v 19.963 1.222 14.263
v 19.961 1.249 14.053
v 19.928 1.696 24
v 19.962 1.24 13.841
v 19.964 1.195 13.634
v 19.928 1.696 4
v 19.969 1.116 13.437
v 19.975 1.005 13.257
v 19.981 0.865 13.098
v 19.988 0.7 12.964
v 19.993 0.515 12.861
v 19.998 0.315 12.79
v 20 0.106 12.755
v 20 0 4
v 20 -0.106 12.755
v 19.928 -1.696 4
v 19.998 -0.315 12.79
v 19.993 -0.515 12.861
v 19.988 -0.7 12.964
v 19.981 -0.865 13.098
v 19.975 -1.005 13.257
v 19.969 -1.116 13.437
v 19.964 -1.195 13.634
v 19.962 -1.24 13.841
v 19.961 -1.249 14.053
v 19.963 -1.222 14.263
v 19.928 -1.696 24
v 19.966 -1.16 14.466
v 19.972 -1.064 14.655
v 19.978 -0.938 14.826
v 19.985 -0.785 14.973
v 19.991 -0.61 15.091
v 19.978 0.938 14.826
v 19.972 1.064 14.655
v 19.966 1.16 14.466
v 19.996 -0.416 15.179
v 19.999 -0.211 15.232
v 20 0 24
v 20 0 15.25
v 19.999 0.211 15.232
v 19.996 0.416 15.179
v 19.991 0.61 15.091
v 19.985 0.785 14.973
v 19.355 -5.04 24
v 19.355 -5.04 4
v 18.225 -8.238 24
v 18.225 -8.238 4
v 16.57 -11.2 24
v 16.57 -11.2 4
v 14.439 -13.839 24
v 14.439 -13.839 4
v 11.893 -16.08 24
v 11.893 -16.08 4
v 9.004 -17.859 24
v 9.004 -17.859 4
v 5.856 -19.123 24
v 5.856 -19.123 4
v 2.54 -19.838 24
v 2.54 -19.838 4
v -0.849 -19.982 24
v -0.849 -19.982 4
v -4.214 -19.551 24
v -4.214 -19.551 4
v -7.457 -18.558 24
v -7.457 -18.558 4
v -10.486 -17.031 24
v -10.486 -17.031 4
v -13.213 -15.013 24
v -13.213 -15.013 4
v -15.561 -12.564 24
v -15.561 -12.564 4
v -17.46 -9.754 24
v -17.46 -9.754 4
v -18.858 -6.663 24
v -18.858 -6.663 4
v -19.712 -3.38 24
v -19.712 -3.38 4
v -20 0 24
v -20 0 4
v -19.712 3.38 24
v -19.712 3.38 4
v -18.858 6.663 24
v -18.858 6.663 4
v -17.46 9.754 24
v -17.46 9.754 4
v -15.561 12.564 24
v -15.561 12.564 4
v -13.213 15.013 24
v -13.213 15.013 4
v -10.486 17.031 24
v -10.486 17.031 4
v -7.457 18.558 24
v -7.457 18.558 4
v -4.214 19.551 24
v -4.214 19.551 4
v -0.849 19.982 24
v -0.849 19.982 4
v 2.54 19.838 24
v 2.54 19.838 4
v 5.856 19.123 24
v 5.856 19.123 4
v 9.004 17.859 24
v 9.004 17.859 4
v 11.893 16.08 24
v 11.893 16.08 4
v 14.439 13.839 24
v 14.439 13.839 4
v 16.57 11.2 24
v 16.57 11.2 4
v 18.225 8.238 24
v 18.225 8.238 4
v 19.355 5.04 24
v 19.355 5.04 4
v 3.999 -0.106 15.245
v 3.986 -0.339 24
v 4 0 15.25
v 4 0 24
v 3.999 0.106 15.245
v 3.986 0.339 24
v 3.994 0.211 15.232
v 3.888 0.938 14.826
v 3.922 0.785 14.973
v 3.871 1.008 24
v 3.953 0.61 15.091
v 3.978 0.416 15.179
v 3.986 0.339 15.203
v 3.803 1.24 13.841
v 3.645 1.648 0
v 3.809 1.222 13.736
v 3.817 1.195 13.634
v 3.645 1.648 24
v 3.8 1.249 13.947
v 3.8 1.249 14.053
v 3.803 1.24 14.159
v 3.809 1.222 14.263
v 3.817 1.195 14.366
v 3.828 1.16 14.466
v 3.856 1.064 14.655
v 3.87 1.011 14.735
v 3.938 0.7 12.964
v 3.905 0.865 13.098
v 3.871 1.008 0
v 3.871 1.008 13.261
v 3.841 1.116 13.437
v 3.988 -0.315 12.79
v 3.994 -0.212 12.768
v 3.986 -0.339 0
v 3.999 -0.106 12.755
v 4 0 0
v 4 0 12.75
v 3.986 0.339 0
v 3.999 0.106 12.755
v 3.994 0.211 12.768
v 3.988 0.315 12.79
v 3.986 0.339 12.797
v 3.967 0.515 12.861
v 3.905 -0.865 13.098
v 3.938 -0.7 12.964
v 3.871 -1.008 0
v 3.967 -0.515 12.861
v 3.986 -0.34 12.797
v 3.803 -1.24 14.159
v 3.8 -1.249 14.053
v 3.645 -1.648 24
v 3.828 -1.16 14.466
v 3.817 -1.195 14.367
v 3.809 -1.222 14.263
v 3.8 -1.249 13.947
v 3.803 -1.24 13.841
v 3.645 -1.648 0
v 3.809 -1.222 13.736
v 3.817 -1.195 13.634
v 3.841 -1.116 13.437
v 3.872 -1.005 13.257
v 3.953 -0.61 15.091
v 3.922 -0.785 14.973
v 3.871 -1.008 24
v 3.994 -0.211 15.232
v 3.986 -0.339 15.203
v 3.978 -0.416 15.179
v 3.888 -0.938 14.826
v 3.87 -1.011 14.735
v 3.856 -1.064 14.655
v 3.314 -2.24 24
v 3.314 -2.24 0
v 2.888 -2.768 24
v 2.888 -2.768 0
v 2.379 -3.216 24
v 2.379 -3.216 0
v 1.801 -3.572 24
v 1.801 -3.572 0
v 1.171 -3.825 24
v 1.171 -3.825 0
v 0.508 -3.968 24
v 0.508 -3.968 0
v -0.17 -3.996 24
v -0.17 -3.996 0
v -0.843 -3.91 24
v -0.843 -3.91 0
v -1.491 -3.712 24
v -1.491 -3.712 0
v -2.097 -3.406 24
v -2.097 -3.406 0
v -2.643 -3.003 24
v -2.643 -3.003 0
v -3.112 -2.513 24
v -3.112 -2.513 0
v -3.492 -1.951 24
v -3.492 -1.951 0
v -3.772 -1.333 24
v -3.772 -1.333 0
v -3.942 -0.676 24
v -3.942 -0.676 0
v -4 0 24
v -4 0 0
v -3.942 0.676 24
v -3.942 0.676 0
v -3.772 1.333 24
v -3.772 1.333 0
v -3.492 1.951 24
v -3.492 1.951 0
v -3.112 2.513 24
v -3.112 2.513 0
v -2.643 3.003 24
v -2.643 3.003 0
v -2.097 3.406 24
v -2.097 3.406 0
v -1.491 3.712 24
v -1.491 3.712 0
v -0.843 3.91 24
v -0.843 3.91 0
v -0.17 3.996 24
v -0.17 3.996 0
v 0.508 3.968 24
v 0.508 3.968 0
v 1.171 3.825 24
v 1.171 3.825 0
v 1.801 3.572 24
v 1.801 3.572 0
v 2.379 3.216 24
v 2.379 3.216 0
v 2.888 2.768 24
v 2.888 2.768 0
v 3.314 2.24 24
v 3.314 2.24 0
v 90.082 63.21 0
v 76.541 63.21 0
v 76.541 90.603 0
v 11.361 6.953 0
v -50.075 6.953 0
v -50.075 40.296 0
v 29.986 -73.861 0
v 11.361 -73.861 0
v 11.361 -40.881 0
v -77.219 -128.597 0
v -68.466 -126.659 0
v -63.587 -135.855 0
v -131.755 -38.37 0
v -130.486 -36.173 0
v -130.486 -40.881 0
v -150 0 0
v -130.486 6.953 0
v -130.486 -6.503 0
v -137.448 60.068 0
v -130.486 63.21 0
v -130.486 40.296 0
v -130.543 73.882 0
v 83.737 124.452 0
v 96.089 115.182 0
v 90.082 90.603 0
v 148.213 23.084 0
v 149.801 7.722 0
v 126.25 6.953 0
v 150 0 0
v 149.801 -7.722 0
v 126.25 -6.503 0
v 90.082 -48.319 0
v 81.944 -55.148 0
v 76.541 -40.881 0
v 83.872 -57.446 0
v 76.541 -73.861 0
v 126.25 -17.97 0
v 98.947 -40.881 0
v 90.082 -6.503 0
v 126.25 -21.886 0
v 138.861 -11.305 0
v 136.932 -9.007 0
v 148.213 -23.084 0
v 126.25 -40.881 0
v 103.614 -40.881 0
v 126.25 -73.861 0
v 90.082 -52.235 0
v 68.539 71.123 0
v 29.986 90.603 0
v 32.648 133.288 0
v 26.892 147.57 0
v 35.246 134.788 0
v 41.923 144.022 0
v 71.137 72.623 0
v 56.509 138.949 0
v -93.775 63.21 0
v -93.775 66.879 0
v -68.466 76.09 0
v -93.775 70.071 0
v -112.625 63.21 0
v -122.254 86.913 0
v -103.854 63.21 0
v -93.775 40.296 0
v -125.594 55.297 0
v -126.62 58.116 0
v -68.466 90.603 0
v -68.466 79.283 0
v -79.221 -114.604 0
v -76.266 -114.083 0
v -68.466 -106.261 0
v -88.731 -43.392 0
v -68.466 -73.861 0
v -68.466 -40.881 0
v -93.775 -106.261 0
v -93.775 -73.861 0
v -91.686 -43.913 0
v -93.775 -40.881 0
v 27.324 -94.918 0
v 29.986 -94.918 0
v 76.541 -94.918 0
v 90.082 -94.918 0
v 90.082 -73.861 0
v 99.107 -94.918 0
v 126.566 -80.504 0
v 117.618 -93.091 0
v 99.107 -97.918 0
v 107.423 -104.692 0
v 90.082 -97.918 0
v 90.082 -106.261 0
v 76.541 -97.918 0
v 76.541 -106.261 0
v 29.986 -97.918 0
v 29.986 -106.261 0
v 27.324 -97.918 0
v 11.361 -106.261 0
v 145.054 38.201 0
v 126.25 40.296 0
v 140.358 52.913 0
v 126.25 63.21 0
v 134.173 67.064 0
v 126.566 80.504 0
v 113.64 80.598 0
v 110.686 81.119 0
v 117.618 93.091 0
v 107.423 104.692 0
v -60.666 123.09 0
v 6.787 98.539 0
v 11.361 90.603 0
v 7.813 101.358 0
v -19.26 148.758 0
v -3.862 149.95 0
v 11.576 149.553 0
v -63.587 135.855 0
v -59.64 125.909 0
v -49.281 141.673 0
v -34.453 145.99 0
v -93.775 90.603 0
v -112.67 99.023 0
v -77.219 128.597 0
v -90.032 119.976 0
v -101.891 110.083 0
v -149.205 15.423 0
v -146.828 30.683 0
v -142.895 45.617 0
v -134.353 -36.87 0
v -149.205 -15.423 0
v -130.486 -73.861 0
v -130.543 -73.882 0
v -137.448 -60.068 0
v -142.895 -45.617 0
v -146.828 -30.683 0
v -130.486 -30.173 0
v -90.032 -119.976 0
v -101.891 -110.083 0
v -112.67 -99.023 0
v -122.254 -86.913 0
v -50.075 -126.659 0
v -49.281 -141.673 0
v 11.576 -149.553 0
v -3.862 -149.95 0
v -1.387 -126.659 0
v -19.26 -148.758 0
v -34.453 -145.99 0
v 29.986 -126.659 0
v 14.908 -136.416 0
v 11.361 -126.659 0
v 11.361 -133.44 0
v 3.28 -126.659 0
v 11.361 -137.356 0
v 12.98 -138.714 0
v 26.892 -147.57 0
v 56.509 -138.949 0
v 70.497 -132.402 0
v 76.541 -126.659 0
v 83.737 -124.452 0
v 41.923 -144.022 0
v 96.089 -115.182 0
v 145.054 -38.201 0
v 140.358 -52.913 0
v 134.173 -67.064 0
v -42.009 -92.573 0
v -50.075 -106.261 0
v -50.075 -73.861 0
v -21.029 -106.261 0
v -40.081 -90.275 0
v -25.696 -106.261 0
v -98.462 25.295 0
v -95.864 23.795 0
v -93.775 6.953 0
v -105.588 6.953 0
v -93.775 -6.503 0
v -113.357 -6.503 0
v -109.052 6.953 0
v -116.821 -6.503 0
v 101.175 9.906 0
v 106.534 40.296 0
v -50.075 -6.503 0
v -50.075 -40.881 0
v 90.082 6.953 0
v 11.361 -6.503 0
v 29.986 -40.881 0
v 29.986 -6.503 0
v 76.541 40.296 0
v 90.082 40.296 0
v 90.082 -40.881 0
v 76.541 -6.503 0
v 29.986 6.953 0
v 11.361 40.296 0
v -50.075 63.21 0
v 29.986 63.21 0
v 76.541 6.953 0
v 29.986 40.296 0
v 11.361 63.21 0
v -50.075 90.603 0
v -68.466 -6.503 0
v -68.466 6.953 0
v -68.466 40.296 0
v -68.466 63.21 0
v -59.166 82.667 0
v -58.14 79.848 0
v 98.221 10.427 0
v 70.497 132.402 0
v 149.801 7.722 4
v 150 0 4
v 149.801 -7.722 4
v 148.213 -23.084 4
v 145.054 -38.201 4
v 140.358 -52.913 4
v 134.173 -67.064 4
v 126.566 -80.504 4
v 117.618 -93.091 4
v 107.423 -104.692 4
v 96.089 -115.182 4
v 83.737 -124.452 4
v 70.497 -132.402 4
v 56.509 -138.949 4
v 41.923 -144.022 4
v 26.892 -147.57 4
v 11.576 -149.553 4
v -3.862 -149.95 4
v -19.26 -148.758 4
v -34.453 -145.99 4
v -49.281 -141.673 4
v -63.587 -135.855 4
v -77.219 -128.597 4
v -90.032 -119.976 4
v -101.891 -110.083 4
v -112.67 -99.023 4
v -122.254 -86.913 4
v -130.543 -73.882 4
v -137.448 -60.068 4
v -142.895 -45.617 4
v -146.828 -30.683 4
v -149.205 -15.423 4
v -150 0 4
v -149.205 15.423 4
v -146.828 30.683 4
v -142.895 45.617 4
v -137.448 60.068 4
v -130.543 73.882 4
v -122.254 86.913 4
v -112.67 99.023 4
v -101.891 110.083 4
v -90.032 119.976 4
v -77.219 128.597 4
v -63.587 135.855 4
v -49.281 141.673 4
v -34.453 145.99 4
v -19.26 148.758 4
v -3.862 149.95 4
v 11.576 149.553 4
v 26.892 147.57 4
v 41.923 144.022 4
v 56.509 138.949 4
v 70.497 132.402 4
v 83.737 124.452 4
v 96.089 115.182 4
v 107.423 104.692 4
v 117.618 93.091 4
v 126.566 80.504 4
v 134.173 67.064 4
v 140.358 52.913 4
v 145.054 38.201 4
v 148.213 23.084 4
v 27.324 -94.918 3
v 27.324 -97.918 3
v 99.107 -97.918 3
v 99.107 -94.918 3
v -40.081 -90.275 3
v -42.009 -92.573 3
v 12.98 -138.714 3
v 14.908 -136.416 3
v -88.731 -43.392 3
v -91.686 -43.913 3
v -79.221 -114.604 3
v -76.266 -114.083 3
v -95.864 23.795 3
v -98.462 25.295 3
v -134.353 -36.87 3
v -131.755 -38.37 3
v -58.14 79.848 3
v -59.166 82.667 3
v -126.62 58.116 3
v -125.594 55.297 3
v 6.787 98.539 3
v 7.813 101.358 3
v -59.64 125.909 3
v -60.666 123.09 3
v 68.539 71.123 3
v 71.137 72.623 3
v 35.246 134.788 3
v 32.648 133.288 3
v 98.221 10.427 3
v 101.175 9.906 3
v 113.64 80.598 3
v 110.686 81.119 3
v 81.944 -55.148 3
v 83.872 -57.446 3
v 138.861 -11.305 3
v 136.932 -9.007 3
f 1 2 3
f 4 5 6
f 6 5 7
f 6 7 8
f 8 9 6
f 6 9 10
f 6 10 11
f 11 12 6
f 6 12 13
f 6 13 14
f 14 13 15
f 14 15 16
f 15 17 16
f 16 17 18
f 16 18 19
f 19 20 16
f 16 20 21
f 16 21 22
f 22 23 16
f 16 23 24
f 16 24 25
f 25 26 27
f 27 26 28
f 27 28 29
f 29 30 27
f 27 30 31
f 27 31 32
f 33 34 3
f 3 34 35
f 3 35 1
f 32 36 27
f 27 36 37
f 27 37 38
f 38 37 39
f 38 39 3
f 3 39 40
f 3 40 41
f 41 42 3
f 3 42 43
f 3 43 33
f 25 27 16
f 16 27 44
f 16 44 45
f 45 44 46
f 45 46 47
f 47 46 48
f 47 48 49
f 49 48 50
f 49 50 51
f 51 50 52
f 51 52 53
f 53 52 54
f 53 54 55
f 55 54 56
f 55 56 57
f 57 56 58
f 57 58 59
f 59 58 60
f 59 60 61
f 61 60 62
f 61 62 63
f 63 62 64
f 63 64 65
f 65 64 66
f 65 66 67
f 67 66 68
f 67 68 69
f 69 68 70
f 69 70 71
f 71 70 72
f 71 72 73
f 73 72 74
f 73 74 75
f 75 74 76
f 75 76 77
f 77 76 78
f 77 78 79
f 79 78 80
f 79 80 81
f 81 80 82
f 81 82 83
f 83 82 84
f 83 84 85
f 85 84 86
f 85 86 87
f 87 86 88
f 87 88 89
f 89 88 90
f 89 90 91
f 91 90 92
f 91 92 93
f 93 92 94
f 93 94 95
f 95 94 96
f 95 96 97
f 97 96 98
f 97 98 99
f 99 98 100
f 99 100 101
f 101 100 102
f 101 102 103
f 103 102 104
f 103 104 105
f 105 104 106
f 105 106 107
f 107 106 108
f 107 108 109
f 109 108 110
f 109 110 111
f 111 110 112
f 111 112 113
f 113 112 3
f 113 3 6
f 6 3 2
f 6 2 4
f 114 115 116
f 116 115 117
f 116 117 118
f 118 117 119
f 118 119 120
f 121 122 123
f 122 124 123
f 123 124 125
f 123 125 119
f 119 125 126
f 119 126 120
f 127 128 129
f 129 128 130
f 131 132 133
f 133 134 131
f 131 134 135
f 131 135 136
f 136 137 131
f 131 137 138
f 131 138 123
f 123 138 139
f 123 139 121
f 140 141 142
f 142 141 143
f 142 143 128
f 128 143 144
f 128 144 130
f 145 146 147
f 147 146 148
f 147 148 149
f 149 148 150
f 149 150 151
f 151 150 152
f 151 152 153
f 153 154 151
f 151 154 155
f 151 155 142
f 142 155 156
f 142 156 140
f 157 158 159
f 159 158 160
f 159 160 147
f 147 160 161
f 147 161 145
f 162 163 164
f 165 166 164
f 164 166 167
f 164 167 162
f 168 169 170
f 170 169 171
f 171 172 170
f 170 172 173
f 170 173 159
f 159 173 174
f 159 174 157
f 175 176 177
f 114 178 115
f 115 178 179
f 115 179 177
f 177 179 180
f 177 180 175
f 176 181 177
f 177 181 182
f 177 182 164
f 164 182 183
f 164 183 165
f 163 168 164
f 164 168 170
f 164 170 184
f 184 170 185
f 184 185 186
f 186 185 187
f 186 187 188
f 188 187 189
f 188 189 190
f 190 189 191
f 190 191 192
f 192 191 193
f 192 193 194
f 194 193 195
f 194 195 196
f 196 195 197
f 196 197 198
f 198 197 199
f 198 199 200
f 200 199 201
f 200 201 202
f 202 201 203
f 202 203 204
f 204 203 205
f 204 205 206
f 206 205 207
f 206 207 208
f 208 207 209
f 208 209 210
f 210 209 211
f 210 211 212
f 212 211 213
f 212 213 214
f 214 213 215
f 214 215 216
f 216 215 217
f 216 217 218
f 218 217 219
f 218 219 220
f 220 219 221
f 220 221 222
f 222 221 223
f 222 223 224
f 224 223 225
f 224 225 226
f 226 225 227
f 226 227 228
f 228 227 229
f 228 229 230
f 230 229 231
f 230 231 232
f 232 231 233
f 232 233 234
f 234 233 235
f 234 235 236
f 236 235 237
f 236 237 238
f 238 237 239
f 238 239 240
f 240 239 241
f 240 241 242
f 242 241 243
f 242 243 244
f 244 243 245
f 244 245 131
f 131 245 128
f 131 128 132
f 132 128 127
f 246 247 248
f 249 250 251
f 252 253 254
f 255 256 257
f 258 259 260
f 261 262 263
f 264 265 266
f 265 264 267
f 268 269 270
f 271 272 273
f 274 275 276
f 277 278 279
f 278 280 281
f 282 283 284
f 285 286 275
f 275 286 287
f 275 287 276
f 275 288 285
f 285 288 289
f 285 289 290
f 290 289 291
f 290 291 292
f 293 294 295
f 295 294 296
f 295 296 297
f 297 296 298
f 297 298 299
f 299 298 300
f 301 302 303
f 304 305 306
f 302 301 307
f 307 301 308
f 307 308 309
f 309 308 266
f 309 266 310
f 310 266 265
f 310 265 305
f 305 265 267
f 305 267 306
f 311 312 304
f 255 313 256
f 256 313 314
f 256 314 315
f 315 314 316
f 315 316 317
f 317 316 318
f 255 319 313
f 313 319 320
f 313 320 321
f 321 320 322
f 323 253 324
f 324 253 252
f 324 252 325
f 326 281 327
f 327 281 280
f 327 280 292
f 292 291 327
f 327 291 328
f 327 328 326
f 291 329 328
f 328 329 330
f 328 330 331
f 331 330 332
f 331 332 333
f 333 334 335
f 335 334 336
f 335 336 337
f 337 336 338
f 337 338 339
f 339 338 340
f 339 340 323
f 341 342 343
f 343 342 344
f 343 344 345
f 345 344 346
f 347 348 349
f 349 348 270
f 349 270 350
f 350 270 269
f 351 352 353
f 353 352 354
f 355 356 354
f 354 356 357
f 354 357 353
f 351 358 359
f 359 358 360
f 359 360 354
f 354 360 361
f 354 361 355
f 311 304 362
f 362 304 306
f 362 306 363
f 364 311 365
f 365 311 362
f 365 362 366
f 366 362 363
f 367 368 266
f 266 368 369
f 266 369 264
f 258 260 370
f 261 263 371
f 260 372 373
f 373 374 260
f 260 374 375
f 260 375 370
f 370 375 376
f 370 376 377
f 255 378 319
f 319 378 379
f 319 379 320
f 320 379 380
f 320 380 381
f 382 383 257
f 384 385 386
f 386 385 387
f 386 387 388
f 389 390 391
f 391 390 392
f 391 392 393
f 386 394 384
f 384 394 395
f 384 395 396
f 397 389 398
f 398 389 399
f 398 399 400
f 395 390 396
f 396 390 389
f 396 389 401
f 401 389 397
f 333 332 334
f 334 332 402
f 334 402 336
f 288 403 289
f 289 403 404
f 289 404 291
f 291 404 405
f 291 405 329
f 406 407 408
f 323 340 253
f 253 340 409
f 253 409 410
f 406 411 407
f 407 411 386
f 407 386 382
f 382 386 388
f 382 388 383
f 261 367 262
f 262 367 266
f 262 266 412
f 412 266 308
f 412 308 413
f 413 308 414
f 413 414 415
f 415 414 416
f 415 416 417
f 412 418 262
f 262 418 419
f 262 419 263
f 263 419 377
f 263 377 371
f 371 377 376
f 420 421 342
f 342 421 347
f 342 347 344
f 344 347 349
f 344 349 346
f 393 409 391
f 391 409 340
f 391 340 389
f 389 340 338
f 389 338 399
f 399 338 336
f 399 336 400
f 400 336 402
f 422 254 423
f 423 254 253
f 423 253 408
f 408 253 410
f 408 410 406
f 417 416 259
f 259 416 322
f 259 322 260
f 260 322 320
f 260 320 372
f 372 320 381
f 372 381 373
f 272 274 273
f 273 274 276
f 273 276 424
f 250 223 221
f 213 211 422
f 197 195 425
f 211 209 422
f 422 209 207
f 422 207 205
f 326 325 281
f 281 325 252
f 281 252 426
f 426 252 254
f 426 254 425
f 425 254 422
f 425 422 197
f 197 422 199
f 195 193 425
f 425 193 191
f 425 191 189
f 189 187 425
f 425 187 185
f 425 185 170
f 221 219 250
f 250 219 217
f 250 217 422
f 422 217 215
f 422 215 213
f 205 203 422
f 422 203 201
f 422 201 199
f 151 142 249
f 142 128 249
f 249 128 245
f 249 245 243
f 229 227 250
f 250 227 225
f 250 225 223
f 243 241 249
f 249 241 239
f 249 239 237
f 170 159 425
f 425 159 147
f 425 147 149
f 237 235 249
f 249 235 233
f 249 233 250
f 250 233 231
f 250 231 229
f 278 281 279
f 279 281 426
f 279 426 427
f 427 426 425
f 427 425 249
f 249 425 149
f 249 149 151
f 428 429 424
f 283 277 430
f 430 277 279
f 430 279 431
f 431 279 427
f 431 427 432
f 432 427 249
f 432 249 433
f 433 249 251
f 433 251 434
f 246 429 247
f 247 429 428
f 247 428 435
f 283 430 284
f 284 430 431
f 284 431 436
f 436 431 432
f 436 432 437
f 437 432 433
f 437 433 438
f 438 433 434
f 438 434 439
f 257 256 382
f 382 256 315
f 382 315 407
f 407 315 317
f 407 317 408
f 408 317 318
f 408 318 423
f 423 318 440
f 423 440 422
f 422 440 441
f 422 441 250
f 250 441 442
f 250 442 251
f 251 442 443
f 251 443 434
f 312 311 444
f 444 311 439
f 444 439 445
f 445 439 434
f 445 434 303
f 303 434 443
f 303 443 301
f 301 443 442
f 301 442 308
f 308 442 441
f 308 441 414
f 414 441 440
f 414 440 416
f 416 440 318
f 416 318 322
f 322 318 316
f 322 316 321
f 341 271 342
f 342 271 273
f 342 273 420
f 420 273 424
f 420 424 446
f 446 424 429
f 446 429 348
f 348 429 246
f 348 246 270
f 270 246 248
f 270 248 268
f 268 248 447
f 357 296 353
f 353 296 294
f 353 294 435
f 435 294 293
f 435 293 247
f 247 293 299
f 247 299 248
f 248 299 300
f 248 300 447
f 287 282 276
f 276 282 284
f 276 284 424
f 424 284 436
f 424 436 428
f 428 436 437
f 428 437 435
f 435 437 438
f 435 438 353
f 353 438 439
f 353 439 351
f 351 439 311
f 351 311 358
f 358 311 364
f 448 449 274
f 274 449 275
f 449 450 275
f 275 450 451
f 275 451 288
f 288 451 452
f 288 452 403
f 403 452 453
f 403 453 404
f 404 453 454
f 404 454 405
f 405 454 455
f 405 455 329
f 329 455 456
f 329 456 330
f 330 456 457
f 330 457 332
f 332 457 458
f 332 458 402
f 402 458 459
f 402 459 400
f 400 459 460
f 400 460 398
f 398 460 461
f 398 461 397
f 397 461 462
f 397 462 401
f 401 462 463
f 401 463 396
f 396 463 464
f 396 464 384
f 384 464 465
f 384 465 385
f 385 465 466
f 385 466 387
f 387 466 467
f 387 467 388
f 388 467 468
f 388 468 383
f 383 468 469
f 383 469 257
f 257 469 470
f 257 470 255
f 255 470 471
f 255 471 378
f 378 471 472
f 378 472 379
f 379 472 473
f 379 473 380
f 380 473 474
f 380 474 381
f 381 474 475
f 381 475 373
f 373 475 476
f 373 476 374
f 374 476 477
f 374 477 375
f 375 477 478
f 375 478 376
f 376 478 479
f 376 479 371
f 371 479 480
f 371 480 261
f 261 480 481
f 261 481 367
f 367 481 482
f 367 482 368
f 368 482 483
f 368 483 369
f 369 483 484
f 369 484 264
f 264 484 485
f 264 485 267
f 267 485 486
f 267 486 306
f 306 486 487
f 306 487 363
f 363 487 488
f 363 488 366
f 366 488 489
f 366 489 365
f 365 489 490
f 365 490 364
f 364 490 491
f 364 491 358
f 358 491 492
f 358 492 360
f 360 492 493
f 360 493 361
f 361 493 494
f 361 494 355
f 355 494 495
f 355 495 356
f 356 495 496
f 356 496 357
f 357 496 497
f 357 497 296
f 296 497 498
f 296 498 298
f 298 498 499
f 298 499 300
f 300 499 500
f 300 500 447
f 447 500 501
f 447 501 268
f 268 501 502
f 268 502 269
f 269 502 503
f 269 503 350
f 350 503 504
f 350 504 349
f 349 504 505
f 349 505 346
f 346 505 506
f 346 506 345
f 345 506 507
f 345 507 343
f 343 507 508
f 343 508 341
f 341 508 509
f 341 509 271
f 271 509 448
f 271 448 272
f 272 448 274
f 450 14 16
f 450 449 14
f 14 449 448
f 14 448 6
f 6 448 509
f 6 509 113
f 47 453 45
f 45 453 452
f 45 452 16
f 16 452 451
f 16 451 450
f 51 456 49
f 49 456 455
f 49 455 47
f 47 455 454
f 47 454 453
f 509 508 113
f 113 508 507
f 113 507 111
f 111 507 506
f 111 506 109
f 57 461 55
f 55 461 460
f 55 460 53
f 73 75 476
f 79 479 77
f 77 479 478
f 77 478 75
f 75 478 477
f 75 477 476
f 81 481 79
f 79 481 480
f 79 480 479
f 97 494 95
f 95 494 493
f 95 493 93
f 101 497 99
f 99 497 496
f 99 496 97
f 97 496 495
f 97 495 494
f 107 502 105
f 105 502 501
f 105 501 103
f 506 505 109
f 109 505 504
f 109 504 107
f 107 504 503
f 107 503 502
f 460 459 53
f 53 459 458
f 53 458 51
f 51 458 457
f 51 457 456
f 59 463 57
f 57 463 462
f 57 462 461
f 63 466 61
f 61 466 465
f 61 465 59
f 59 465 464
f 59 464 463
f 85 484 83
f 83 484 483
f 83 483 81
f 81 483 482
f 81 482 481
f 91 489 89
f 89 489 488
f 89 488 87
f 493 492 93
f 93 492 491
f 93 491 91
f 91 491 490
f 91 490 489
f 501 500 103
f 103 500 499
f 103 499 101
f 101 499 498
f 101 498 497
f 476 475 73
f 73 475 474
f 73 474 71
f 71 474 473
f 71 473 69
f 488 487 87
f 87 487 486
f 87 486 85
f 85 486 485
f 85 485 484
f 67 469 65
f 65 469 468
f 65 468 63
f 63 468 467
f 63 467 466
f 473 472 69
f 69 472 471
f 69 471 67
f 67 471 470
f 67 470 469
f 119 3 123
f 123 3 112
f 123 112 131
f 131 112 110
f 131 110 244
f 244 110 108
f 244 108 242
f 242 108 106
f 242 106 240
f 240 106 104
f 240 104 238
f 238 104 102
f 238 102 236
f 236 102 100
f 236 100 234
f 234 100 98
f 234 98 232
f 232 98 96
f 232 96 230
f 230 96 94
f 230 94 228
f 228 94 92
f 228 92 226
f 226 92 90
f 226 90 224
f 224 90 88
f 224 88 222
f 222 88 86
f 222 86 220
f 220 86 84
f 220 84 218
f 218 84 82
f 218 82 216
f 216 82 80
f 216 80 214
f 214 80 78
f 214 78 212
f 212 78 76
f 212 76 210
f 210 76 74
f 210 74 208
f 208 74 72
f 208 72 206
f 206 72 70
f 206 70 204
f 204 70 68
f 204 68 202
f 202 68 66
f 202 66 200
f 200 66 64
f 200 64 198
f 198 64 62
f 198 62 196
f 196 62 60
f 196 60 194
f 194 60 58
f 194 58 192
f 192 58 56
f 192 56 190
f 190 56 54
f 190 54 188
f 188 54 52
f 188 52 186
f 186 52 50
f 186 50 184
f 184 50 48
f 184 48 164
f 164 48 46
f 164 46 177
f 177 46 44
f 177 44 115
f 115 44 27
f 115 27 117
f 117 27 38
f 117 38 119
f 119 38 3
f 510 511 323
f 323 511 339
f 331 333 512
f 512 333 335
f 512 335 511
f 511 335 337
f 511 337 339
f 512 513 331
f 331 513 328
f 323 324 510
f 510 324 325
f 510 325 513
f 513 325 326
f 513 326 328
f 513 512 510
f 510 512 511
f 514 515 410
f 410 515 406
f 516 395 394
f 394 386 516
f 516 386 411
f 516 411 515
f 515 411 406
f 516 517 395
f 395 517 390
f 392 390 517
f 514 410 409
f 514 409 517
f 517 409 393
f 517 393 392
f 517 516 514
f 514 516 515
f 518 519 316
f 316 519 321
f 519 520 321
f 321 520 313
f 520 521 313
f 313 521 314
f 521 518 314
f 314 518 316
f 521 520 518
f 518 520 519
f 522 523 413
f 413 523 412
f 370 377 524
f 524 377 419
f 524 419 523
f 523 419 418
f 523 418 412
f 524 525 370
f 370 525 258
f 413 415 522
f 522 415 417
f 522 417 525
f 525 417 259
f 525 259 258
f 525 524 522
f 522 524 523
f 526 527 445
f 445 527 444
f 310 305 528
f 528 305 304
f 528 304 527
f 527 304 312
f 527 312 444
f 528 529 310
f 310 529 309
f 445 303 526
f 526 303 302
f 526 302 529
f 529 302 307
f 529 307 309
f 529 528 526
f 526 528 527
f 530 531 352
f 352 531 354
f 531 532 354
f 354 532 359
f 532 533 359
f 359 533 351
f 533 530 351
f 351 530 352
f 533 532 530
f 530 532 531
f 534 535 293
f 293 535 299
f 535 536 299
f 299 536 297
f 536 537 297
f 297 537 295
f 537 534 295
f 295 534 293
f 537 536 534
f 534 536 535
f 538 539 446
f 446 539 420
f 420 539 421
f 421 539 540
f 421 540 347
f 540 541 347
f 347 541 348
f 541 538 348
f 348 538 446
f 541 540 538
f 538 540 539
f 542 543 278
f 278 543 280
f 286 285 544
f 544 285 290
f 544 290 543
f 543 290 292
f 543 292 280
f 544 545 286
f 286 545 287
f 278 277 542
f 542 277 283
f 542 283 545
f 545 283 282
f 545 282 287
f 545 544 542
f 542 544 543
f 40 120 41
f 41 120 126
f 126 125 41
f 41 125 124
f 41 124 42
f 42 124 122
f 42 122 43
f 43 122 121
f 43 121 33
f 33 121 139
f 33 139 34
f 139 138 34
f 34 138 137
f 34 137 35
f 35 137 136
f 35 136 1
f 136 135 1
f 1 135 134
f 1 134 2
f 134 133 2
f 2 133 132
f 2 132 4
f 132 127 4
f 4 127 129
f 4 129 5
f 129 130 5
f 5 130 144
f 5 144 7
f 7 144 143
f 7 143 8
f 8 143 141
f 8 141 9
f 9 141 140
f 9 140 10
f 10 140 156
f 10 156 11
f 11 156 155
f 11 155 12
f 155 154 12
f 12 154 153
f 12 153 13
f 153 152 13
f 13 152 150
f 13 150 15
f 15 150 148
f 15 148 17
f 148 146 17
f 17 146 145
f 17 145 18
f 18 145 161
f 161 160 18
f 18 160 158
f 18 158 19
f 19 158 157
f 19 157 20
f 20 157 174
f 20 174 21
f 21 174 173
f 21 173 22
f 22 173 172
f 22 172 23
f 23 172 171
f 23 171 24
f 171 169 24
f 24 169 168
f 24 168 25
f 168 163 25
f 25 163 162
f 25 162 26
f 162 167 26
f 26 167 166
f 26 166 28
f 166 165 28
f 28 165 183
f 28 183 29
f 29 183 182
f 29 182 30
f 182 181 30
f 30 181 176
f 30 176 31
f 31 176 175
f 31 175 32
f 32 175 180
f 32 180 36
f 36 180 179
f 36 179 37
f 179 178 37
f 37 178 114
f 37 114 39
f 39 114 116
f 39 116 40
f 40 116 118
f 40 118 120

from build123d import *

# Parameters (mm, degrees)
SKETCH1_R         = 150
DISC_DEPTH        = 4
SKETCH2_R         = 20
HUB_DEPTH         = 20
SKETCH3_R         = 4
BORE_DEPTH        = 24
SKETCH4_W         = 71.782300335
SKETCH4_H         = 3
BLADE_SLOTS_DEPTH = 3
SKETCH5_R         = 1.25
CLAMP_SCREW_DEPTH = 17


with BuildPart() as part:
    # Sketch1 → Disc (new body)
    with BuildSketch(Plane.XY):
        Circle(SKETCH1_R)
    extrude(amount=DISC_DEPTH)

    # Sketch2 → Hub (add)
    with BuildSketch(Plane.XY.offset(4)):
        Circle(SKETCH2_R)
    extrude(amount=HUB_DEPTH)

    # Sketch3 → Bore (cut)
    with BuildSketch(Plane.XY):
        Circle(SKETCH3_R)
    extrude(amount=BORE_DEPTH, mode=Mode.SUBTRACT)

    # Sketch4 → Blade_slots (cut)
    with BuildSketch(Plane.XY):
        with Locations((63.2155163, -96.418141453)):
            Rectangle(SKETCH4_W, SKETCH4_H)
        Polygon((83.872246927, -57.445884148), (138.860679213, -11.305110898), (136.932316384, -9.006977568), (81.943884098, -55.147750818), align=None)
        Polygon((101.175371248, 9.90594079), (113.64023689, 80.597706689), (110.685813631, 81.118651222), (98.220947989, 10.426885323), align=None)
        Polygon((71.137414923, 72.62266594), (35.246264756, 134.787961572), (32.648188544, 133.287961572), (68.539338712, 71.12266594), align=None)
        Polygon((7.813471551, 101.358438585), (-59.639826377, 125.909431234), (-60.665886807, 123.090353372), (6.787411121, 98.539360723), align=None)
        Polygon((-59.166481997, 82.667471343), (-126.619779924, 58.116478695), (-125.593719494, 55.297400832), (-58.140421567, 79.848393481), align=None)
        Polygon((-98.461781056, 25.295475513), (-134.352931224, -36.869820119), (-131.754855012, -38.369820119), (-95.863704845, 23.795475513), align=None)
        Polygon((-91.685718479, -43.912554438), (-79.220852837, -114.604320337), (-76.266429578, -114.083375804), (-88.73129522, -43.391609905), align=None)
        Polygon((-42.008889252, -92.573412133), (12.979543034, -138.714185383), (14.907905863, -136.416052054), (-40.080526423, -90.275278804), align=None)
    extrude(amount=BLADE_SLOTS_DEPTH, mode=Mode.SUBTRACT)

    # Sketch5 → Clamp_screw (cut)
    with BuildSketch(Plane(origin=(3.5, 0, 0), x_dir=(0, 0, -1), z_dir=(1, 0, 0))):
        with Locations(Location((-14, 0, 0), (0, 0, 180))):
            Circle(SKETCH5_R)
    extrude(amount=CLAMP_SCREW_DEPTH, mode=Mode.SUBTRACT)


solid = part.part
